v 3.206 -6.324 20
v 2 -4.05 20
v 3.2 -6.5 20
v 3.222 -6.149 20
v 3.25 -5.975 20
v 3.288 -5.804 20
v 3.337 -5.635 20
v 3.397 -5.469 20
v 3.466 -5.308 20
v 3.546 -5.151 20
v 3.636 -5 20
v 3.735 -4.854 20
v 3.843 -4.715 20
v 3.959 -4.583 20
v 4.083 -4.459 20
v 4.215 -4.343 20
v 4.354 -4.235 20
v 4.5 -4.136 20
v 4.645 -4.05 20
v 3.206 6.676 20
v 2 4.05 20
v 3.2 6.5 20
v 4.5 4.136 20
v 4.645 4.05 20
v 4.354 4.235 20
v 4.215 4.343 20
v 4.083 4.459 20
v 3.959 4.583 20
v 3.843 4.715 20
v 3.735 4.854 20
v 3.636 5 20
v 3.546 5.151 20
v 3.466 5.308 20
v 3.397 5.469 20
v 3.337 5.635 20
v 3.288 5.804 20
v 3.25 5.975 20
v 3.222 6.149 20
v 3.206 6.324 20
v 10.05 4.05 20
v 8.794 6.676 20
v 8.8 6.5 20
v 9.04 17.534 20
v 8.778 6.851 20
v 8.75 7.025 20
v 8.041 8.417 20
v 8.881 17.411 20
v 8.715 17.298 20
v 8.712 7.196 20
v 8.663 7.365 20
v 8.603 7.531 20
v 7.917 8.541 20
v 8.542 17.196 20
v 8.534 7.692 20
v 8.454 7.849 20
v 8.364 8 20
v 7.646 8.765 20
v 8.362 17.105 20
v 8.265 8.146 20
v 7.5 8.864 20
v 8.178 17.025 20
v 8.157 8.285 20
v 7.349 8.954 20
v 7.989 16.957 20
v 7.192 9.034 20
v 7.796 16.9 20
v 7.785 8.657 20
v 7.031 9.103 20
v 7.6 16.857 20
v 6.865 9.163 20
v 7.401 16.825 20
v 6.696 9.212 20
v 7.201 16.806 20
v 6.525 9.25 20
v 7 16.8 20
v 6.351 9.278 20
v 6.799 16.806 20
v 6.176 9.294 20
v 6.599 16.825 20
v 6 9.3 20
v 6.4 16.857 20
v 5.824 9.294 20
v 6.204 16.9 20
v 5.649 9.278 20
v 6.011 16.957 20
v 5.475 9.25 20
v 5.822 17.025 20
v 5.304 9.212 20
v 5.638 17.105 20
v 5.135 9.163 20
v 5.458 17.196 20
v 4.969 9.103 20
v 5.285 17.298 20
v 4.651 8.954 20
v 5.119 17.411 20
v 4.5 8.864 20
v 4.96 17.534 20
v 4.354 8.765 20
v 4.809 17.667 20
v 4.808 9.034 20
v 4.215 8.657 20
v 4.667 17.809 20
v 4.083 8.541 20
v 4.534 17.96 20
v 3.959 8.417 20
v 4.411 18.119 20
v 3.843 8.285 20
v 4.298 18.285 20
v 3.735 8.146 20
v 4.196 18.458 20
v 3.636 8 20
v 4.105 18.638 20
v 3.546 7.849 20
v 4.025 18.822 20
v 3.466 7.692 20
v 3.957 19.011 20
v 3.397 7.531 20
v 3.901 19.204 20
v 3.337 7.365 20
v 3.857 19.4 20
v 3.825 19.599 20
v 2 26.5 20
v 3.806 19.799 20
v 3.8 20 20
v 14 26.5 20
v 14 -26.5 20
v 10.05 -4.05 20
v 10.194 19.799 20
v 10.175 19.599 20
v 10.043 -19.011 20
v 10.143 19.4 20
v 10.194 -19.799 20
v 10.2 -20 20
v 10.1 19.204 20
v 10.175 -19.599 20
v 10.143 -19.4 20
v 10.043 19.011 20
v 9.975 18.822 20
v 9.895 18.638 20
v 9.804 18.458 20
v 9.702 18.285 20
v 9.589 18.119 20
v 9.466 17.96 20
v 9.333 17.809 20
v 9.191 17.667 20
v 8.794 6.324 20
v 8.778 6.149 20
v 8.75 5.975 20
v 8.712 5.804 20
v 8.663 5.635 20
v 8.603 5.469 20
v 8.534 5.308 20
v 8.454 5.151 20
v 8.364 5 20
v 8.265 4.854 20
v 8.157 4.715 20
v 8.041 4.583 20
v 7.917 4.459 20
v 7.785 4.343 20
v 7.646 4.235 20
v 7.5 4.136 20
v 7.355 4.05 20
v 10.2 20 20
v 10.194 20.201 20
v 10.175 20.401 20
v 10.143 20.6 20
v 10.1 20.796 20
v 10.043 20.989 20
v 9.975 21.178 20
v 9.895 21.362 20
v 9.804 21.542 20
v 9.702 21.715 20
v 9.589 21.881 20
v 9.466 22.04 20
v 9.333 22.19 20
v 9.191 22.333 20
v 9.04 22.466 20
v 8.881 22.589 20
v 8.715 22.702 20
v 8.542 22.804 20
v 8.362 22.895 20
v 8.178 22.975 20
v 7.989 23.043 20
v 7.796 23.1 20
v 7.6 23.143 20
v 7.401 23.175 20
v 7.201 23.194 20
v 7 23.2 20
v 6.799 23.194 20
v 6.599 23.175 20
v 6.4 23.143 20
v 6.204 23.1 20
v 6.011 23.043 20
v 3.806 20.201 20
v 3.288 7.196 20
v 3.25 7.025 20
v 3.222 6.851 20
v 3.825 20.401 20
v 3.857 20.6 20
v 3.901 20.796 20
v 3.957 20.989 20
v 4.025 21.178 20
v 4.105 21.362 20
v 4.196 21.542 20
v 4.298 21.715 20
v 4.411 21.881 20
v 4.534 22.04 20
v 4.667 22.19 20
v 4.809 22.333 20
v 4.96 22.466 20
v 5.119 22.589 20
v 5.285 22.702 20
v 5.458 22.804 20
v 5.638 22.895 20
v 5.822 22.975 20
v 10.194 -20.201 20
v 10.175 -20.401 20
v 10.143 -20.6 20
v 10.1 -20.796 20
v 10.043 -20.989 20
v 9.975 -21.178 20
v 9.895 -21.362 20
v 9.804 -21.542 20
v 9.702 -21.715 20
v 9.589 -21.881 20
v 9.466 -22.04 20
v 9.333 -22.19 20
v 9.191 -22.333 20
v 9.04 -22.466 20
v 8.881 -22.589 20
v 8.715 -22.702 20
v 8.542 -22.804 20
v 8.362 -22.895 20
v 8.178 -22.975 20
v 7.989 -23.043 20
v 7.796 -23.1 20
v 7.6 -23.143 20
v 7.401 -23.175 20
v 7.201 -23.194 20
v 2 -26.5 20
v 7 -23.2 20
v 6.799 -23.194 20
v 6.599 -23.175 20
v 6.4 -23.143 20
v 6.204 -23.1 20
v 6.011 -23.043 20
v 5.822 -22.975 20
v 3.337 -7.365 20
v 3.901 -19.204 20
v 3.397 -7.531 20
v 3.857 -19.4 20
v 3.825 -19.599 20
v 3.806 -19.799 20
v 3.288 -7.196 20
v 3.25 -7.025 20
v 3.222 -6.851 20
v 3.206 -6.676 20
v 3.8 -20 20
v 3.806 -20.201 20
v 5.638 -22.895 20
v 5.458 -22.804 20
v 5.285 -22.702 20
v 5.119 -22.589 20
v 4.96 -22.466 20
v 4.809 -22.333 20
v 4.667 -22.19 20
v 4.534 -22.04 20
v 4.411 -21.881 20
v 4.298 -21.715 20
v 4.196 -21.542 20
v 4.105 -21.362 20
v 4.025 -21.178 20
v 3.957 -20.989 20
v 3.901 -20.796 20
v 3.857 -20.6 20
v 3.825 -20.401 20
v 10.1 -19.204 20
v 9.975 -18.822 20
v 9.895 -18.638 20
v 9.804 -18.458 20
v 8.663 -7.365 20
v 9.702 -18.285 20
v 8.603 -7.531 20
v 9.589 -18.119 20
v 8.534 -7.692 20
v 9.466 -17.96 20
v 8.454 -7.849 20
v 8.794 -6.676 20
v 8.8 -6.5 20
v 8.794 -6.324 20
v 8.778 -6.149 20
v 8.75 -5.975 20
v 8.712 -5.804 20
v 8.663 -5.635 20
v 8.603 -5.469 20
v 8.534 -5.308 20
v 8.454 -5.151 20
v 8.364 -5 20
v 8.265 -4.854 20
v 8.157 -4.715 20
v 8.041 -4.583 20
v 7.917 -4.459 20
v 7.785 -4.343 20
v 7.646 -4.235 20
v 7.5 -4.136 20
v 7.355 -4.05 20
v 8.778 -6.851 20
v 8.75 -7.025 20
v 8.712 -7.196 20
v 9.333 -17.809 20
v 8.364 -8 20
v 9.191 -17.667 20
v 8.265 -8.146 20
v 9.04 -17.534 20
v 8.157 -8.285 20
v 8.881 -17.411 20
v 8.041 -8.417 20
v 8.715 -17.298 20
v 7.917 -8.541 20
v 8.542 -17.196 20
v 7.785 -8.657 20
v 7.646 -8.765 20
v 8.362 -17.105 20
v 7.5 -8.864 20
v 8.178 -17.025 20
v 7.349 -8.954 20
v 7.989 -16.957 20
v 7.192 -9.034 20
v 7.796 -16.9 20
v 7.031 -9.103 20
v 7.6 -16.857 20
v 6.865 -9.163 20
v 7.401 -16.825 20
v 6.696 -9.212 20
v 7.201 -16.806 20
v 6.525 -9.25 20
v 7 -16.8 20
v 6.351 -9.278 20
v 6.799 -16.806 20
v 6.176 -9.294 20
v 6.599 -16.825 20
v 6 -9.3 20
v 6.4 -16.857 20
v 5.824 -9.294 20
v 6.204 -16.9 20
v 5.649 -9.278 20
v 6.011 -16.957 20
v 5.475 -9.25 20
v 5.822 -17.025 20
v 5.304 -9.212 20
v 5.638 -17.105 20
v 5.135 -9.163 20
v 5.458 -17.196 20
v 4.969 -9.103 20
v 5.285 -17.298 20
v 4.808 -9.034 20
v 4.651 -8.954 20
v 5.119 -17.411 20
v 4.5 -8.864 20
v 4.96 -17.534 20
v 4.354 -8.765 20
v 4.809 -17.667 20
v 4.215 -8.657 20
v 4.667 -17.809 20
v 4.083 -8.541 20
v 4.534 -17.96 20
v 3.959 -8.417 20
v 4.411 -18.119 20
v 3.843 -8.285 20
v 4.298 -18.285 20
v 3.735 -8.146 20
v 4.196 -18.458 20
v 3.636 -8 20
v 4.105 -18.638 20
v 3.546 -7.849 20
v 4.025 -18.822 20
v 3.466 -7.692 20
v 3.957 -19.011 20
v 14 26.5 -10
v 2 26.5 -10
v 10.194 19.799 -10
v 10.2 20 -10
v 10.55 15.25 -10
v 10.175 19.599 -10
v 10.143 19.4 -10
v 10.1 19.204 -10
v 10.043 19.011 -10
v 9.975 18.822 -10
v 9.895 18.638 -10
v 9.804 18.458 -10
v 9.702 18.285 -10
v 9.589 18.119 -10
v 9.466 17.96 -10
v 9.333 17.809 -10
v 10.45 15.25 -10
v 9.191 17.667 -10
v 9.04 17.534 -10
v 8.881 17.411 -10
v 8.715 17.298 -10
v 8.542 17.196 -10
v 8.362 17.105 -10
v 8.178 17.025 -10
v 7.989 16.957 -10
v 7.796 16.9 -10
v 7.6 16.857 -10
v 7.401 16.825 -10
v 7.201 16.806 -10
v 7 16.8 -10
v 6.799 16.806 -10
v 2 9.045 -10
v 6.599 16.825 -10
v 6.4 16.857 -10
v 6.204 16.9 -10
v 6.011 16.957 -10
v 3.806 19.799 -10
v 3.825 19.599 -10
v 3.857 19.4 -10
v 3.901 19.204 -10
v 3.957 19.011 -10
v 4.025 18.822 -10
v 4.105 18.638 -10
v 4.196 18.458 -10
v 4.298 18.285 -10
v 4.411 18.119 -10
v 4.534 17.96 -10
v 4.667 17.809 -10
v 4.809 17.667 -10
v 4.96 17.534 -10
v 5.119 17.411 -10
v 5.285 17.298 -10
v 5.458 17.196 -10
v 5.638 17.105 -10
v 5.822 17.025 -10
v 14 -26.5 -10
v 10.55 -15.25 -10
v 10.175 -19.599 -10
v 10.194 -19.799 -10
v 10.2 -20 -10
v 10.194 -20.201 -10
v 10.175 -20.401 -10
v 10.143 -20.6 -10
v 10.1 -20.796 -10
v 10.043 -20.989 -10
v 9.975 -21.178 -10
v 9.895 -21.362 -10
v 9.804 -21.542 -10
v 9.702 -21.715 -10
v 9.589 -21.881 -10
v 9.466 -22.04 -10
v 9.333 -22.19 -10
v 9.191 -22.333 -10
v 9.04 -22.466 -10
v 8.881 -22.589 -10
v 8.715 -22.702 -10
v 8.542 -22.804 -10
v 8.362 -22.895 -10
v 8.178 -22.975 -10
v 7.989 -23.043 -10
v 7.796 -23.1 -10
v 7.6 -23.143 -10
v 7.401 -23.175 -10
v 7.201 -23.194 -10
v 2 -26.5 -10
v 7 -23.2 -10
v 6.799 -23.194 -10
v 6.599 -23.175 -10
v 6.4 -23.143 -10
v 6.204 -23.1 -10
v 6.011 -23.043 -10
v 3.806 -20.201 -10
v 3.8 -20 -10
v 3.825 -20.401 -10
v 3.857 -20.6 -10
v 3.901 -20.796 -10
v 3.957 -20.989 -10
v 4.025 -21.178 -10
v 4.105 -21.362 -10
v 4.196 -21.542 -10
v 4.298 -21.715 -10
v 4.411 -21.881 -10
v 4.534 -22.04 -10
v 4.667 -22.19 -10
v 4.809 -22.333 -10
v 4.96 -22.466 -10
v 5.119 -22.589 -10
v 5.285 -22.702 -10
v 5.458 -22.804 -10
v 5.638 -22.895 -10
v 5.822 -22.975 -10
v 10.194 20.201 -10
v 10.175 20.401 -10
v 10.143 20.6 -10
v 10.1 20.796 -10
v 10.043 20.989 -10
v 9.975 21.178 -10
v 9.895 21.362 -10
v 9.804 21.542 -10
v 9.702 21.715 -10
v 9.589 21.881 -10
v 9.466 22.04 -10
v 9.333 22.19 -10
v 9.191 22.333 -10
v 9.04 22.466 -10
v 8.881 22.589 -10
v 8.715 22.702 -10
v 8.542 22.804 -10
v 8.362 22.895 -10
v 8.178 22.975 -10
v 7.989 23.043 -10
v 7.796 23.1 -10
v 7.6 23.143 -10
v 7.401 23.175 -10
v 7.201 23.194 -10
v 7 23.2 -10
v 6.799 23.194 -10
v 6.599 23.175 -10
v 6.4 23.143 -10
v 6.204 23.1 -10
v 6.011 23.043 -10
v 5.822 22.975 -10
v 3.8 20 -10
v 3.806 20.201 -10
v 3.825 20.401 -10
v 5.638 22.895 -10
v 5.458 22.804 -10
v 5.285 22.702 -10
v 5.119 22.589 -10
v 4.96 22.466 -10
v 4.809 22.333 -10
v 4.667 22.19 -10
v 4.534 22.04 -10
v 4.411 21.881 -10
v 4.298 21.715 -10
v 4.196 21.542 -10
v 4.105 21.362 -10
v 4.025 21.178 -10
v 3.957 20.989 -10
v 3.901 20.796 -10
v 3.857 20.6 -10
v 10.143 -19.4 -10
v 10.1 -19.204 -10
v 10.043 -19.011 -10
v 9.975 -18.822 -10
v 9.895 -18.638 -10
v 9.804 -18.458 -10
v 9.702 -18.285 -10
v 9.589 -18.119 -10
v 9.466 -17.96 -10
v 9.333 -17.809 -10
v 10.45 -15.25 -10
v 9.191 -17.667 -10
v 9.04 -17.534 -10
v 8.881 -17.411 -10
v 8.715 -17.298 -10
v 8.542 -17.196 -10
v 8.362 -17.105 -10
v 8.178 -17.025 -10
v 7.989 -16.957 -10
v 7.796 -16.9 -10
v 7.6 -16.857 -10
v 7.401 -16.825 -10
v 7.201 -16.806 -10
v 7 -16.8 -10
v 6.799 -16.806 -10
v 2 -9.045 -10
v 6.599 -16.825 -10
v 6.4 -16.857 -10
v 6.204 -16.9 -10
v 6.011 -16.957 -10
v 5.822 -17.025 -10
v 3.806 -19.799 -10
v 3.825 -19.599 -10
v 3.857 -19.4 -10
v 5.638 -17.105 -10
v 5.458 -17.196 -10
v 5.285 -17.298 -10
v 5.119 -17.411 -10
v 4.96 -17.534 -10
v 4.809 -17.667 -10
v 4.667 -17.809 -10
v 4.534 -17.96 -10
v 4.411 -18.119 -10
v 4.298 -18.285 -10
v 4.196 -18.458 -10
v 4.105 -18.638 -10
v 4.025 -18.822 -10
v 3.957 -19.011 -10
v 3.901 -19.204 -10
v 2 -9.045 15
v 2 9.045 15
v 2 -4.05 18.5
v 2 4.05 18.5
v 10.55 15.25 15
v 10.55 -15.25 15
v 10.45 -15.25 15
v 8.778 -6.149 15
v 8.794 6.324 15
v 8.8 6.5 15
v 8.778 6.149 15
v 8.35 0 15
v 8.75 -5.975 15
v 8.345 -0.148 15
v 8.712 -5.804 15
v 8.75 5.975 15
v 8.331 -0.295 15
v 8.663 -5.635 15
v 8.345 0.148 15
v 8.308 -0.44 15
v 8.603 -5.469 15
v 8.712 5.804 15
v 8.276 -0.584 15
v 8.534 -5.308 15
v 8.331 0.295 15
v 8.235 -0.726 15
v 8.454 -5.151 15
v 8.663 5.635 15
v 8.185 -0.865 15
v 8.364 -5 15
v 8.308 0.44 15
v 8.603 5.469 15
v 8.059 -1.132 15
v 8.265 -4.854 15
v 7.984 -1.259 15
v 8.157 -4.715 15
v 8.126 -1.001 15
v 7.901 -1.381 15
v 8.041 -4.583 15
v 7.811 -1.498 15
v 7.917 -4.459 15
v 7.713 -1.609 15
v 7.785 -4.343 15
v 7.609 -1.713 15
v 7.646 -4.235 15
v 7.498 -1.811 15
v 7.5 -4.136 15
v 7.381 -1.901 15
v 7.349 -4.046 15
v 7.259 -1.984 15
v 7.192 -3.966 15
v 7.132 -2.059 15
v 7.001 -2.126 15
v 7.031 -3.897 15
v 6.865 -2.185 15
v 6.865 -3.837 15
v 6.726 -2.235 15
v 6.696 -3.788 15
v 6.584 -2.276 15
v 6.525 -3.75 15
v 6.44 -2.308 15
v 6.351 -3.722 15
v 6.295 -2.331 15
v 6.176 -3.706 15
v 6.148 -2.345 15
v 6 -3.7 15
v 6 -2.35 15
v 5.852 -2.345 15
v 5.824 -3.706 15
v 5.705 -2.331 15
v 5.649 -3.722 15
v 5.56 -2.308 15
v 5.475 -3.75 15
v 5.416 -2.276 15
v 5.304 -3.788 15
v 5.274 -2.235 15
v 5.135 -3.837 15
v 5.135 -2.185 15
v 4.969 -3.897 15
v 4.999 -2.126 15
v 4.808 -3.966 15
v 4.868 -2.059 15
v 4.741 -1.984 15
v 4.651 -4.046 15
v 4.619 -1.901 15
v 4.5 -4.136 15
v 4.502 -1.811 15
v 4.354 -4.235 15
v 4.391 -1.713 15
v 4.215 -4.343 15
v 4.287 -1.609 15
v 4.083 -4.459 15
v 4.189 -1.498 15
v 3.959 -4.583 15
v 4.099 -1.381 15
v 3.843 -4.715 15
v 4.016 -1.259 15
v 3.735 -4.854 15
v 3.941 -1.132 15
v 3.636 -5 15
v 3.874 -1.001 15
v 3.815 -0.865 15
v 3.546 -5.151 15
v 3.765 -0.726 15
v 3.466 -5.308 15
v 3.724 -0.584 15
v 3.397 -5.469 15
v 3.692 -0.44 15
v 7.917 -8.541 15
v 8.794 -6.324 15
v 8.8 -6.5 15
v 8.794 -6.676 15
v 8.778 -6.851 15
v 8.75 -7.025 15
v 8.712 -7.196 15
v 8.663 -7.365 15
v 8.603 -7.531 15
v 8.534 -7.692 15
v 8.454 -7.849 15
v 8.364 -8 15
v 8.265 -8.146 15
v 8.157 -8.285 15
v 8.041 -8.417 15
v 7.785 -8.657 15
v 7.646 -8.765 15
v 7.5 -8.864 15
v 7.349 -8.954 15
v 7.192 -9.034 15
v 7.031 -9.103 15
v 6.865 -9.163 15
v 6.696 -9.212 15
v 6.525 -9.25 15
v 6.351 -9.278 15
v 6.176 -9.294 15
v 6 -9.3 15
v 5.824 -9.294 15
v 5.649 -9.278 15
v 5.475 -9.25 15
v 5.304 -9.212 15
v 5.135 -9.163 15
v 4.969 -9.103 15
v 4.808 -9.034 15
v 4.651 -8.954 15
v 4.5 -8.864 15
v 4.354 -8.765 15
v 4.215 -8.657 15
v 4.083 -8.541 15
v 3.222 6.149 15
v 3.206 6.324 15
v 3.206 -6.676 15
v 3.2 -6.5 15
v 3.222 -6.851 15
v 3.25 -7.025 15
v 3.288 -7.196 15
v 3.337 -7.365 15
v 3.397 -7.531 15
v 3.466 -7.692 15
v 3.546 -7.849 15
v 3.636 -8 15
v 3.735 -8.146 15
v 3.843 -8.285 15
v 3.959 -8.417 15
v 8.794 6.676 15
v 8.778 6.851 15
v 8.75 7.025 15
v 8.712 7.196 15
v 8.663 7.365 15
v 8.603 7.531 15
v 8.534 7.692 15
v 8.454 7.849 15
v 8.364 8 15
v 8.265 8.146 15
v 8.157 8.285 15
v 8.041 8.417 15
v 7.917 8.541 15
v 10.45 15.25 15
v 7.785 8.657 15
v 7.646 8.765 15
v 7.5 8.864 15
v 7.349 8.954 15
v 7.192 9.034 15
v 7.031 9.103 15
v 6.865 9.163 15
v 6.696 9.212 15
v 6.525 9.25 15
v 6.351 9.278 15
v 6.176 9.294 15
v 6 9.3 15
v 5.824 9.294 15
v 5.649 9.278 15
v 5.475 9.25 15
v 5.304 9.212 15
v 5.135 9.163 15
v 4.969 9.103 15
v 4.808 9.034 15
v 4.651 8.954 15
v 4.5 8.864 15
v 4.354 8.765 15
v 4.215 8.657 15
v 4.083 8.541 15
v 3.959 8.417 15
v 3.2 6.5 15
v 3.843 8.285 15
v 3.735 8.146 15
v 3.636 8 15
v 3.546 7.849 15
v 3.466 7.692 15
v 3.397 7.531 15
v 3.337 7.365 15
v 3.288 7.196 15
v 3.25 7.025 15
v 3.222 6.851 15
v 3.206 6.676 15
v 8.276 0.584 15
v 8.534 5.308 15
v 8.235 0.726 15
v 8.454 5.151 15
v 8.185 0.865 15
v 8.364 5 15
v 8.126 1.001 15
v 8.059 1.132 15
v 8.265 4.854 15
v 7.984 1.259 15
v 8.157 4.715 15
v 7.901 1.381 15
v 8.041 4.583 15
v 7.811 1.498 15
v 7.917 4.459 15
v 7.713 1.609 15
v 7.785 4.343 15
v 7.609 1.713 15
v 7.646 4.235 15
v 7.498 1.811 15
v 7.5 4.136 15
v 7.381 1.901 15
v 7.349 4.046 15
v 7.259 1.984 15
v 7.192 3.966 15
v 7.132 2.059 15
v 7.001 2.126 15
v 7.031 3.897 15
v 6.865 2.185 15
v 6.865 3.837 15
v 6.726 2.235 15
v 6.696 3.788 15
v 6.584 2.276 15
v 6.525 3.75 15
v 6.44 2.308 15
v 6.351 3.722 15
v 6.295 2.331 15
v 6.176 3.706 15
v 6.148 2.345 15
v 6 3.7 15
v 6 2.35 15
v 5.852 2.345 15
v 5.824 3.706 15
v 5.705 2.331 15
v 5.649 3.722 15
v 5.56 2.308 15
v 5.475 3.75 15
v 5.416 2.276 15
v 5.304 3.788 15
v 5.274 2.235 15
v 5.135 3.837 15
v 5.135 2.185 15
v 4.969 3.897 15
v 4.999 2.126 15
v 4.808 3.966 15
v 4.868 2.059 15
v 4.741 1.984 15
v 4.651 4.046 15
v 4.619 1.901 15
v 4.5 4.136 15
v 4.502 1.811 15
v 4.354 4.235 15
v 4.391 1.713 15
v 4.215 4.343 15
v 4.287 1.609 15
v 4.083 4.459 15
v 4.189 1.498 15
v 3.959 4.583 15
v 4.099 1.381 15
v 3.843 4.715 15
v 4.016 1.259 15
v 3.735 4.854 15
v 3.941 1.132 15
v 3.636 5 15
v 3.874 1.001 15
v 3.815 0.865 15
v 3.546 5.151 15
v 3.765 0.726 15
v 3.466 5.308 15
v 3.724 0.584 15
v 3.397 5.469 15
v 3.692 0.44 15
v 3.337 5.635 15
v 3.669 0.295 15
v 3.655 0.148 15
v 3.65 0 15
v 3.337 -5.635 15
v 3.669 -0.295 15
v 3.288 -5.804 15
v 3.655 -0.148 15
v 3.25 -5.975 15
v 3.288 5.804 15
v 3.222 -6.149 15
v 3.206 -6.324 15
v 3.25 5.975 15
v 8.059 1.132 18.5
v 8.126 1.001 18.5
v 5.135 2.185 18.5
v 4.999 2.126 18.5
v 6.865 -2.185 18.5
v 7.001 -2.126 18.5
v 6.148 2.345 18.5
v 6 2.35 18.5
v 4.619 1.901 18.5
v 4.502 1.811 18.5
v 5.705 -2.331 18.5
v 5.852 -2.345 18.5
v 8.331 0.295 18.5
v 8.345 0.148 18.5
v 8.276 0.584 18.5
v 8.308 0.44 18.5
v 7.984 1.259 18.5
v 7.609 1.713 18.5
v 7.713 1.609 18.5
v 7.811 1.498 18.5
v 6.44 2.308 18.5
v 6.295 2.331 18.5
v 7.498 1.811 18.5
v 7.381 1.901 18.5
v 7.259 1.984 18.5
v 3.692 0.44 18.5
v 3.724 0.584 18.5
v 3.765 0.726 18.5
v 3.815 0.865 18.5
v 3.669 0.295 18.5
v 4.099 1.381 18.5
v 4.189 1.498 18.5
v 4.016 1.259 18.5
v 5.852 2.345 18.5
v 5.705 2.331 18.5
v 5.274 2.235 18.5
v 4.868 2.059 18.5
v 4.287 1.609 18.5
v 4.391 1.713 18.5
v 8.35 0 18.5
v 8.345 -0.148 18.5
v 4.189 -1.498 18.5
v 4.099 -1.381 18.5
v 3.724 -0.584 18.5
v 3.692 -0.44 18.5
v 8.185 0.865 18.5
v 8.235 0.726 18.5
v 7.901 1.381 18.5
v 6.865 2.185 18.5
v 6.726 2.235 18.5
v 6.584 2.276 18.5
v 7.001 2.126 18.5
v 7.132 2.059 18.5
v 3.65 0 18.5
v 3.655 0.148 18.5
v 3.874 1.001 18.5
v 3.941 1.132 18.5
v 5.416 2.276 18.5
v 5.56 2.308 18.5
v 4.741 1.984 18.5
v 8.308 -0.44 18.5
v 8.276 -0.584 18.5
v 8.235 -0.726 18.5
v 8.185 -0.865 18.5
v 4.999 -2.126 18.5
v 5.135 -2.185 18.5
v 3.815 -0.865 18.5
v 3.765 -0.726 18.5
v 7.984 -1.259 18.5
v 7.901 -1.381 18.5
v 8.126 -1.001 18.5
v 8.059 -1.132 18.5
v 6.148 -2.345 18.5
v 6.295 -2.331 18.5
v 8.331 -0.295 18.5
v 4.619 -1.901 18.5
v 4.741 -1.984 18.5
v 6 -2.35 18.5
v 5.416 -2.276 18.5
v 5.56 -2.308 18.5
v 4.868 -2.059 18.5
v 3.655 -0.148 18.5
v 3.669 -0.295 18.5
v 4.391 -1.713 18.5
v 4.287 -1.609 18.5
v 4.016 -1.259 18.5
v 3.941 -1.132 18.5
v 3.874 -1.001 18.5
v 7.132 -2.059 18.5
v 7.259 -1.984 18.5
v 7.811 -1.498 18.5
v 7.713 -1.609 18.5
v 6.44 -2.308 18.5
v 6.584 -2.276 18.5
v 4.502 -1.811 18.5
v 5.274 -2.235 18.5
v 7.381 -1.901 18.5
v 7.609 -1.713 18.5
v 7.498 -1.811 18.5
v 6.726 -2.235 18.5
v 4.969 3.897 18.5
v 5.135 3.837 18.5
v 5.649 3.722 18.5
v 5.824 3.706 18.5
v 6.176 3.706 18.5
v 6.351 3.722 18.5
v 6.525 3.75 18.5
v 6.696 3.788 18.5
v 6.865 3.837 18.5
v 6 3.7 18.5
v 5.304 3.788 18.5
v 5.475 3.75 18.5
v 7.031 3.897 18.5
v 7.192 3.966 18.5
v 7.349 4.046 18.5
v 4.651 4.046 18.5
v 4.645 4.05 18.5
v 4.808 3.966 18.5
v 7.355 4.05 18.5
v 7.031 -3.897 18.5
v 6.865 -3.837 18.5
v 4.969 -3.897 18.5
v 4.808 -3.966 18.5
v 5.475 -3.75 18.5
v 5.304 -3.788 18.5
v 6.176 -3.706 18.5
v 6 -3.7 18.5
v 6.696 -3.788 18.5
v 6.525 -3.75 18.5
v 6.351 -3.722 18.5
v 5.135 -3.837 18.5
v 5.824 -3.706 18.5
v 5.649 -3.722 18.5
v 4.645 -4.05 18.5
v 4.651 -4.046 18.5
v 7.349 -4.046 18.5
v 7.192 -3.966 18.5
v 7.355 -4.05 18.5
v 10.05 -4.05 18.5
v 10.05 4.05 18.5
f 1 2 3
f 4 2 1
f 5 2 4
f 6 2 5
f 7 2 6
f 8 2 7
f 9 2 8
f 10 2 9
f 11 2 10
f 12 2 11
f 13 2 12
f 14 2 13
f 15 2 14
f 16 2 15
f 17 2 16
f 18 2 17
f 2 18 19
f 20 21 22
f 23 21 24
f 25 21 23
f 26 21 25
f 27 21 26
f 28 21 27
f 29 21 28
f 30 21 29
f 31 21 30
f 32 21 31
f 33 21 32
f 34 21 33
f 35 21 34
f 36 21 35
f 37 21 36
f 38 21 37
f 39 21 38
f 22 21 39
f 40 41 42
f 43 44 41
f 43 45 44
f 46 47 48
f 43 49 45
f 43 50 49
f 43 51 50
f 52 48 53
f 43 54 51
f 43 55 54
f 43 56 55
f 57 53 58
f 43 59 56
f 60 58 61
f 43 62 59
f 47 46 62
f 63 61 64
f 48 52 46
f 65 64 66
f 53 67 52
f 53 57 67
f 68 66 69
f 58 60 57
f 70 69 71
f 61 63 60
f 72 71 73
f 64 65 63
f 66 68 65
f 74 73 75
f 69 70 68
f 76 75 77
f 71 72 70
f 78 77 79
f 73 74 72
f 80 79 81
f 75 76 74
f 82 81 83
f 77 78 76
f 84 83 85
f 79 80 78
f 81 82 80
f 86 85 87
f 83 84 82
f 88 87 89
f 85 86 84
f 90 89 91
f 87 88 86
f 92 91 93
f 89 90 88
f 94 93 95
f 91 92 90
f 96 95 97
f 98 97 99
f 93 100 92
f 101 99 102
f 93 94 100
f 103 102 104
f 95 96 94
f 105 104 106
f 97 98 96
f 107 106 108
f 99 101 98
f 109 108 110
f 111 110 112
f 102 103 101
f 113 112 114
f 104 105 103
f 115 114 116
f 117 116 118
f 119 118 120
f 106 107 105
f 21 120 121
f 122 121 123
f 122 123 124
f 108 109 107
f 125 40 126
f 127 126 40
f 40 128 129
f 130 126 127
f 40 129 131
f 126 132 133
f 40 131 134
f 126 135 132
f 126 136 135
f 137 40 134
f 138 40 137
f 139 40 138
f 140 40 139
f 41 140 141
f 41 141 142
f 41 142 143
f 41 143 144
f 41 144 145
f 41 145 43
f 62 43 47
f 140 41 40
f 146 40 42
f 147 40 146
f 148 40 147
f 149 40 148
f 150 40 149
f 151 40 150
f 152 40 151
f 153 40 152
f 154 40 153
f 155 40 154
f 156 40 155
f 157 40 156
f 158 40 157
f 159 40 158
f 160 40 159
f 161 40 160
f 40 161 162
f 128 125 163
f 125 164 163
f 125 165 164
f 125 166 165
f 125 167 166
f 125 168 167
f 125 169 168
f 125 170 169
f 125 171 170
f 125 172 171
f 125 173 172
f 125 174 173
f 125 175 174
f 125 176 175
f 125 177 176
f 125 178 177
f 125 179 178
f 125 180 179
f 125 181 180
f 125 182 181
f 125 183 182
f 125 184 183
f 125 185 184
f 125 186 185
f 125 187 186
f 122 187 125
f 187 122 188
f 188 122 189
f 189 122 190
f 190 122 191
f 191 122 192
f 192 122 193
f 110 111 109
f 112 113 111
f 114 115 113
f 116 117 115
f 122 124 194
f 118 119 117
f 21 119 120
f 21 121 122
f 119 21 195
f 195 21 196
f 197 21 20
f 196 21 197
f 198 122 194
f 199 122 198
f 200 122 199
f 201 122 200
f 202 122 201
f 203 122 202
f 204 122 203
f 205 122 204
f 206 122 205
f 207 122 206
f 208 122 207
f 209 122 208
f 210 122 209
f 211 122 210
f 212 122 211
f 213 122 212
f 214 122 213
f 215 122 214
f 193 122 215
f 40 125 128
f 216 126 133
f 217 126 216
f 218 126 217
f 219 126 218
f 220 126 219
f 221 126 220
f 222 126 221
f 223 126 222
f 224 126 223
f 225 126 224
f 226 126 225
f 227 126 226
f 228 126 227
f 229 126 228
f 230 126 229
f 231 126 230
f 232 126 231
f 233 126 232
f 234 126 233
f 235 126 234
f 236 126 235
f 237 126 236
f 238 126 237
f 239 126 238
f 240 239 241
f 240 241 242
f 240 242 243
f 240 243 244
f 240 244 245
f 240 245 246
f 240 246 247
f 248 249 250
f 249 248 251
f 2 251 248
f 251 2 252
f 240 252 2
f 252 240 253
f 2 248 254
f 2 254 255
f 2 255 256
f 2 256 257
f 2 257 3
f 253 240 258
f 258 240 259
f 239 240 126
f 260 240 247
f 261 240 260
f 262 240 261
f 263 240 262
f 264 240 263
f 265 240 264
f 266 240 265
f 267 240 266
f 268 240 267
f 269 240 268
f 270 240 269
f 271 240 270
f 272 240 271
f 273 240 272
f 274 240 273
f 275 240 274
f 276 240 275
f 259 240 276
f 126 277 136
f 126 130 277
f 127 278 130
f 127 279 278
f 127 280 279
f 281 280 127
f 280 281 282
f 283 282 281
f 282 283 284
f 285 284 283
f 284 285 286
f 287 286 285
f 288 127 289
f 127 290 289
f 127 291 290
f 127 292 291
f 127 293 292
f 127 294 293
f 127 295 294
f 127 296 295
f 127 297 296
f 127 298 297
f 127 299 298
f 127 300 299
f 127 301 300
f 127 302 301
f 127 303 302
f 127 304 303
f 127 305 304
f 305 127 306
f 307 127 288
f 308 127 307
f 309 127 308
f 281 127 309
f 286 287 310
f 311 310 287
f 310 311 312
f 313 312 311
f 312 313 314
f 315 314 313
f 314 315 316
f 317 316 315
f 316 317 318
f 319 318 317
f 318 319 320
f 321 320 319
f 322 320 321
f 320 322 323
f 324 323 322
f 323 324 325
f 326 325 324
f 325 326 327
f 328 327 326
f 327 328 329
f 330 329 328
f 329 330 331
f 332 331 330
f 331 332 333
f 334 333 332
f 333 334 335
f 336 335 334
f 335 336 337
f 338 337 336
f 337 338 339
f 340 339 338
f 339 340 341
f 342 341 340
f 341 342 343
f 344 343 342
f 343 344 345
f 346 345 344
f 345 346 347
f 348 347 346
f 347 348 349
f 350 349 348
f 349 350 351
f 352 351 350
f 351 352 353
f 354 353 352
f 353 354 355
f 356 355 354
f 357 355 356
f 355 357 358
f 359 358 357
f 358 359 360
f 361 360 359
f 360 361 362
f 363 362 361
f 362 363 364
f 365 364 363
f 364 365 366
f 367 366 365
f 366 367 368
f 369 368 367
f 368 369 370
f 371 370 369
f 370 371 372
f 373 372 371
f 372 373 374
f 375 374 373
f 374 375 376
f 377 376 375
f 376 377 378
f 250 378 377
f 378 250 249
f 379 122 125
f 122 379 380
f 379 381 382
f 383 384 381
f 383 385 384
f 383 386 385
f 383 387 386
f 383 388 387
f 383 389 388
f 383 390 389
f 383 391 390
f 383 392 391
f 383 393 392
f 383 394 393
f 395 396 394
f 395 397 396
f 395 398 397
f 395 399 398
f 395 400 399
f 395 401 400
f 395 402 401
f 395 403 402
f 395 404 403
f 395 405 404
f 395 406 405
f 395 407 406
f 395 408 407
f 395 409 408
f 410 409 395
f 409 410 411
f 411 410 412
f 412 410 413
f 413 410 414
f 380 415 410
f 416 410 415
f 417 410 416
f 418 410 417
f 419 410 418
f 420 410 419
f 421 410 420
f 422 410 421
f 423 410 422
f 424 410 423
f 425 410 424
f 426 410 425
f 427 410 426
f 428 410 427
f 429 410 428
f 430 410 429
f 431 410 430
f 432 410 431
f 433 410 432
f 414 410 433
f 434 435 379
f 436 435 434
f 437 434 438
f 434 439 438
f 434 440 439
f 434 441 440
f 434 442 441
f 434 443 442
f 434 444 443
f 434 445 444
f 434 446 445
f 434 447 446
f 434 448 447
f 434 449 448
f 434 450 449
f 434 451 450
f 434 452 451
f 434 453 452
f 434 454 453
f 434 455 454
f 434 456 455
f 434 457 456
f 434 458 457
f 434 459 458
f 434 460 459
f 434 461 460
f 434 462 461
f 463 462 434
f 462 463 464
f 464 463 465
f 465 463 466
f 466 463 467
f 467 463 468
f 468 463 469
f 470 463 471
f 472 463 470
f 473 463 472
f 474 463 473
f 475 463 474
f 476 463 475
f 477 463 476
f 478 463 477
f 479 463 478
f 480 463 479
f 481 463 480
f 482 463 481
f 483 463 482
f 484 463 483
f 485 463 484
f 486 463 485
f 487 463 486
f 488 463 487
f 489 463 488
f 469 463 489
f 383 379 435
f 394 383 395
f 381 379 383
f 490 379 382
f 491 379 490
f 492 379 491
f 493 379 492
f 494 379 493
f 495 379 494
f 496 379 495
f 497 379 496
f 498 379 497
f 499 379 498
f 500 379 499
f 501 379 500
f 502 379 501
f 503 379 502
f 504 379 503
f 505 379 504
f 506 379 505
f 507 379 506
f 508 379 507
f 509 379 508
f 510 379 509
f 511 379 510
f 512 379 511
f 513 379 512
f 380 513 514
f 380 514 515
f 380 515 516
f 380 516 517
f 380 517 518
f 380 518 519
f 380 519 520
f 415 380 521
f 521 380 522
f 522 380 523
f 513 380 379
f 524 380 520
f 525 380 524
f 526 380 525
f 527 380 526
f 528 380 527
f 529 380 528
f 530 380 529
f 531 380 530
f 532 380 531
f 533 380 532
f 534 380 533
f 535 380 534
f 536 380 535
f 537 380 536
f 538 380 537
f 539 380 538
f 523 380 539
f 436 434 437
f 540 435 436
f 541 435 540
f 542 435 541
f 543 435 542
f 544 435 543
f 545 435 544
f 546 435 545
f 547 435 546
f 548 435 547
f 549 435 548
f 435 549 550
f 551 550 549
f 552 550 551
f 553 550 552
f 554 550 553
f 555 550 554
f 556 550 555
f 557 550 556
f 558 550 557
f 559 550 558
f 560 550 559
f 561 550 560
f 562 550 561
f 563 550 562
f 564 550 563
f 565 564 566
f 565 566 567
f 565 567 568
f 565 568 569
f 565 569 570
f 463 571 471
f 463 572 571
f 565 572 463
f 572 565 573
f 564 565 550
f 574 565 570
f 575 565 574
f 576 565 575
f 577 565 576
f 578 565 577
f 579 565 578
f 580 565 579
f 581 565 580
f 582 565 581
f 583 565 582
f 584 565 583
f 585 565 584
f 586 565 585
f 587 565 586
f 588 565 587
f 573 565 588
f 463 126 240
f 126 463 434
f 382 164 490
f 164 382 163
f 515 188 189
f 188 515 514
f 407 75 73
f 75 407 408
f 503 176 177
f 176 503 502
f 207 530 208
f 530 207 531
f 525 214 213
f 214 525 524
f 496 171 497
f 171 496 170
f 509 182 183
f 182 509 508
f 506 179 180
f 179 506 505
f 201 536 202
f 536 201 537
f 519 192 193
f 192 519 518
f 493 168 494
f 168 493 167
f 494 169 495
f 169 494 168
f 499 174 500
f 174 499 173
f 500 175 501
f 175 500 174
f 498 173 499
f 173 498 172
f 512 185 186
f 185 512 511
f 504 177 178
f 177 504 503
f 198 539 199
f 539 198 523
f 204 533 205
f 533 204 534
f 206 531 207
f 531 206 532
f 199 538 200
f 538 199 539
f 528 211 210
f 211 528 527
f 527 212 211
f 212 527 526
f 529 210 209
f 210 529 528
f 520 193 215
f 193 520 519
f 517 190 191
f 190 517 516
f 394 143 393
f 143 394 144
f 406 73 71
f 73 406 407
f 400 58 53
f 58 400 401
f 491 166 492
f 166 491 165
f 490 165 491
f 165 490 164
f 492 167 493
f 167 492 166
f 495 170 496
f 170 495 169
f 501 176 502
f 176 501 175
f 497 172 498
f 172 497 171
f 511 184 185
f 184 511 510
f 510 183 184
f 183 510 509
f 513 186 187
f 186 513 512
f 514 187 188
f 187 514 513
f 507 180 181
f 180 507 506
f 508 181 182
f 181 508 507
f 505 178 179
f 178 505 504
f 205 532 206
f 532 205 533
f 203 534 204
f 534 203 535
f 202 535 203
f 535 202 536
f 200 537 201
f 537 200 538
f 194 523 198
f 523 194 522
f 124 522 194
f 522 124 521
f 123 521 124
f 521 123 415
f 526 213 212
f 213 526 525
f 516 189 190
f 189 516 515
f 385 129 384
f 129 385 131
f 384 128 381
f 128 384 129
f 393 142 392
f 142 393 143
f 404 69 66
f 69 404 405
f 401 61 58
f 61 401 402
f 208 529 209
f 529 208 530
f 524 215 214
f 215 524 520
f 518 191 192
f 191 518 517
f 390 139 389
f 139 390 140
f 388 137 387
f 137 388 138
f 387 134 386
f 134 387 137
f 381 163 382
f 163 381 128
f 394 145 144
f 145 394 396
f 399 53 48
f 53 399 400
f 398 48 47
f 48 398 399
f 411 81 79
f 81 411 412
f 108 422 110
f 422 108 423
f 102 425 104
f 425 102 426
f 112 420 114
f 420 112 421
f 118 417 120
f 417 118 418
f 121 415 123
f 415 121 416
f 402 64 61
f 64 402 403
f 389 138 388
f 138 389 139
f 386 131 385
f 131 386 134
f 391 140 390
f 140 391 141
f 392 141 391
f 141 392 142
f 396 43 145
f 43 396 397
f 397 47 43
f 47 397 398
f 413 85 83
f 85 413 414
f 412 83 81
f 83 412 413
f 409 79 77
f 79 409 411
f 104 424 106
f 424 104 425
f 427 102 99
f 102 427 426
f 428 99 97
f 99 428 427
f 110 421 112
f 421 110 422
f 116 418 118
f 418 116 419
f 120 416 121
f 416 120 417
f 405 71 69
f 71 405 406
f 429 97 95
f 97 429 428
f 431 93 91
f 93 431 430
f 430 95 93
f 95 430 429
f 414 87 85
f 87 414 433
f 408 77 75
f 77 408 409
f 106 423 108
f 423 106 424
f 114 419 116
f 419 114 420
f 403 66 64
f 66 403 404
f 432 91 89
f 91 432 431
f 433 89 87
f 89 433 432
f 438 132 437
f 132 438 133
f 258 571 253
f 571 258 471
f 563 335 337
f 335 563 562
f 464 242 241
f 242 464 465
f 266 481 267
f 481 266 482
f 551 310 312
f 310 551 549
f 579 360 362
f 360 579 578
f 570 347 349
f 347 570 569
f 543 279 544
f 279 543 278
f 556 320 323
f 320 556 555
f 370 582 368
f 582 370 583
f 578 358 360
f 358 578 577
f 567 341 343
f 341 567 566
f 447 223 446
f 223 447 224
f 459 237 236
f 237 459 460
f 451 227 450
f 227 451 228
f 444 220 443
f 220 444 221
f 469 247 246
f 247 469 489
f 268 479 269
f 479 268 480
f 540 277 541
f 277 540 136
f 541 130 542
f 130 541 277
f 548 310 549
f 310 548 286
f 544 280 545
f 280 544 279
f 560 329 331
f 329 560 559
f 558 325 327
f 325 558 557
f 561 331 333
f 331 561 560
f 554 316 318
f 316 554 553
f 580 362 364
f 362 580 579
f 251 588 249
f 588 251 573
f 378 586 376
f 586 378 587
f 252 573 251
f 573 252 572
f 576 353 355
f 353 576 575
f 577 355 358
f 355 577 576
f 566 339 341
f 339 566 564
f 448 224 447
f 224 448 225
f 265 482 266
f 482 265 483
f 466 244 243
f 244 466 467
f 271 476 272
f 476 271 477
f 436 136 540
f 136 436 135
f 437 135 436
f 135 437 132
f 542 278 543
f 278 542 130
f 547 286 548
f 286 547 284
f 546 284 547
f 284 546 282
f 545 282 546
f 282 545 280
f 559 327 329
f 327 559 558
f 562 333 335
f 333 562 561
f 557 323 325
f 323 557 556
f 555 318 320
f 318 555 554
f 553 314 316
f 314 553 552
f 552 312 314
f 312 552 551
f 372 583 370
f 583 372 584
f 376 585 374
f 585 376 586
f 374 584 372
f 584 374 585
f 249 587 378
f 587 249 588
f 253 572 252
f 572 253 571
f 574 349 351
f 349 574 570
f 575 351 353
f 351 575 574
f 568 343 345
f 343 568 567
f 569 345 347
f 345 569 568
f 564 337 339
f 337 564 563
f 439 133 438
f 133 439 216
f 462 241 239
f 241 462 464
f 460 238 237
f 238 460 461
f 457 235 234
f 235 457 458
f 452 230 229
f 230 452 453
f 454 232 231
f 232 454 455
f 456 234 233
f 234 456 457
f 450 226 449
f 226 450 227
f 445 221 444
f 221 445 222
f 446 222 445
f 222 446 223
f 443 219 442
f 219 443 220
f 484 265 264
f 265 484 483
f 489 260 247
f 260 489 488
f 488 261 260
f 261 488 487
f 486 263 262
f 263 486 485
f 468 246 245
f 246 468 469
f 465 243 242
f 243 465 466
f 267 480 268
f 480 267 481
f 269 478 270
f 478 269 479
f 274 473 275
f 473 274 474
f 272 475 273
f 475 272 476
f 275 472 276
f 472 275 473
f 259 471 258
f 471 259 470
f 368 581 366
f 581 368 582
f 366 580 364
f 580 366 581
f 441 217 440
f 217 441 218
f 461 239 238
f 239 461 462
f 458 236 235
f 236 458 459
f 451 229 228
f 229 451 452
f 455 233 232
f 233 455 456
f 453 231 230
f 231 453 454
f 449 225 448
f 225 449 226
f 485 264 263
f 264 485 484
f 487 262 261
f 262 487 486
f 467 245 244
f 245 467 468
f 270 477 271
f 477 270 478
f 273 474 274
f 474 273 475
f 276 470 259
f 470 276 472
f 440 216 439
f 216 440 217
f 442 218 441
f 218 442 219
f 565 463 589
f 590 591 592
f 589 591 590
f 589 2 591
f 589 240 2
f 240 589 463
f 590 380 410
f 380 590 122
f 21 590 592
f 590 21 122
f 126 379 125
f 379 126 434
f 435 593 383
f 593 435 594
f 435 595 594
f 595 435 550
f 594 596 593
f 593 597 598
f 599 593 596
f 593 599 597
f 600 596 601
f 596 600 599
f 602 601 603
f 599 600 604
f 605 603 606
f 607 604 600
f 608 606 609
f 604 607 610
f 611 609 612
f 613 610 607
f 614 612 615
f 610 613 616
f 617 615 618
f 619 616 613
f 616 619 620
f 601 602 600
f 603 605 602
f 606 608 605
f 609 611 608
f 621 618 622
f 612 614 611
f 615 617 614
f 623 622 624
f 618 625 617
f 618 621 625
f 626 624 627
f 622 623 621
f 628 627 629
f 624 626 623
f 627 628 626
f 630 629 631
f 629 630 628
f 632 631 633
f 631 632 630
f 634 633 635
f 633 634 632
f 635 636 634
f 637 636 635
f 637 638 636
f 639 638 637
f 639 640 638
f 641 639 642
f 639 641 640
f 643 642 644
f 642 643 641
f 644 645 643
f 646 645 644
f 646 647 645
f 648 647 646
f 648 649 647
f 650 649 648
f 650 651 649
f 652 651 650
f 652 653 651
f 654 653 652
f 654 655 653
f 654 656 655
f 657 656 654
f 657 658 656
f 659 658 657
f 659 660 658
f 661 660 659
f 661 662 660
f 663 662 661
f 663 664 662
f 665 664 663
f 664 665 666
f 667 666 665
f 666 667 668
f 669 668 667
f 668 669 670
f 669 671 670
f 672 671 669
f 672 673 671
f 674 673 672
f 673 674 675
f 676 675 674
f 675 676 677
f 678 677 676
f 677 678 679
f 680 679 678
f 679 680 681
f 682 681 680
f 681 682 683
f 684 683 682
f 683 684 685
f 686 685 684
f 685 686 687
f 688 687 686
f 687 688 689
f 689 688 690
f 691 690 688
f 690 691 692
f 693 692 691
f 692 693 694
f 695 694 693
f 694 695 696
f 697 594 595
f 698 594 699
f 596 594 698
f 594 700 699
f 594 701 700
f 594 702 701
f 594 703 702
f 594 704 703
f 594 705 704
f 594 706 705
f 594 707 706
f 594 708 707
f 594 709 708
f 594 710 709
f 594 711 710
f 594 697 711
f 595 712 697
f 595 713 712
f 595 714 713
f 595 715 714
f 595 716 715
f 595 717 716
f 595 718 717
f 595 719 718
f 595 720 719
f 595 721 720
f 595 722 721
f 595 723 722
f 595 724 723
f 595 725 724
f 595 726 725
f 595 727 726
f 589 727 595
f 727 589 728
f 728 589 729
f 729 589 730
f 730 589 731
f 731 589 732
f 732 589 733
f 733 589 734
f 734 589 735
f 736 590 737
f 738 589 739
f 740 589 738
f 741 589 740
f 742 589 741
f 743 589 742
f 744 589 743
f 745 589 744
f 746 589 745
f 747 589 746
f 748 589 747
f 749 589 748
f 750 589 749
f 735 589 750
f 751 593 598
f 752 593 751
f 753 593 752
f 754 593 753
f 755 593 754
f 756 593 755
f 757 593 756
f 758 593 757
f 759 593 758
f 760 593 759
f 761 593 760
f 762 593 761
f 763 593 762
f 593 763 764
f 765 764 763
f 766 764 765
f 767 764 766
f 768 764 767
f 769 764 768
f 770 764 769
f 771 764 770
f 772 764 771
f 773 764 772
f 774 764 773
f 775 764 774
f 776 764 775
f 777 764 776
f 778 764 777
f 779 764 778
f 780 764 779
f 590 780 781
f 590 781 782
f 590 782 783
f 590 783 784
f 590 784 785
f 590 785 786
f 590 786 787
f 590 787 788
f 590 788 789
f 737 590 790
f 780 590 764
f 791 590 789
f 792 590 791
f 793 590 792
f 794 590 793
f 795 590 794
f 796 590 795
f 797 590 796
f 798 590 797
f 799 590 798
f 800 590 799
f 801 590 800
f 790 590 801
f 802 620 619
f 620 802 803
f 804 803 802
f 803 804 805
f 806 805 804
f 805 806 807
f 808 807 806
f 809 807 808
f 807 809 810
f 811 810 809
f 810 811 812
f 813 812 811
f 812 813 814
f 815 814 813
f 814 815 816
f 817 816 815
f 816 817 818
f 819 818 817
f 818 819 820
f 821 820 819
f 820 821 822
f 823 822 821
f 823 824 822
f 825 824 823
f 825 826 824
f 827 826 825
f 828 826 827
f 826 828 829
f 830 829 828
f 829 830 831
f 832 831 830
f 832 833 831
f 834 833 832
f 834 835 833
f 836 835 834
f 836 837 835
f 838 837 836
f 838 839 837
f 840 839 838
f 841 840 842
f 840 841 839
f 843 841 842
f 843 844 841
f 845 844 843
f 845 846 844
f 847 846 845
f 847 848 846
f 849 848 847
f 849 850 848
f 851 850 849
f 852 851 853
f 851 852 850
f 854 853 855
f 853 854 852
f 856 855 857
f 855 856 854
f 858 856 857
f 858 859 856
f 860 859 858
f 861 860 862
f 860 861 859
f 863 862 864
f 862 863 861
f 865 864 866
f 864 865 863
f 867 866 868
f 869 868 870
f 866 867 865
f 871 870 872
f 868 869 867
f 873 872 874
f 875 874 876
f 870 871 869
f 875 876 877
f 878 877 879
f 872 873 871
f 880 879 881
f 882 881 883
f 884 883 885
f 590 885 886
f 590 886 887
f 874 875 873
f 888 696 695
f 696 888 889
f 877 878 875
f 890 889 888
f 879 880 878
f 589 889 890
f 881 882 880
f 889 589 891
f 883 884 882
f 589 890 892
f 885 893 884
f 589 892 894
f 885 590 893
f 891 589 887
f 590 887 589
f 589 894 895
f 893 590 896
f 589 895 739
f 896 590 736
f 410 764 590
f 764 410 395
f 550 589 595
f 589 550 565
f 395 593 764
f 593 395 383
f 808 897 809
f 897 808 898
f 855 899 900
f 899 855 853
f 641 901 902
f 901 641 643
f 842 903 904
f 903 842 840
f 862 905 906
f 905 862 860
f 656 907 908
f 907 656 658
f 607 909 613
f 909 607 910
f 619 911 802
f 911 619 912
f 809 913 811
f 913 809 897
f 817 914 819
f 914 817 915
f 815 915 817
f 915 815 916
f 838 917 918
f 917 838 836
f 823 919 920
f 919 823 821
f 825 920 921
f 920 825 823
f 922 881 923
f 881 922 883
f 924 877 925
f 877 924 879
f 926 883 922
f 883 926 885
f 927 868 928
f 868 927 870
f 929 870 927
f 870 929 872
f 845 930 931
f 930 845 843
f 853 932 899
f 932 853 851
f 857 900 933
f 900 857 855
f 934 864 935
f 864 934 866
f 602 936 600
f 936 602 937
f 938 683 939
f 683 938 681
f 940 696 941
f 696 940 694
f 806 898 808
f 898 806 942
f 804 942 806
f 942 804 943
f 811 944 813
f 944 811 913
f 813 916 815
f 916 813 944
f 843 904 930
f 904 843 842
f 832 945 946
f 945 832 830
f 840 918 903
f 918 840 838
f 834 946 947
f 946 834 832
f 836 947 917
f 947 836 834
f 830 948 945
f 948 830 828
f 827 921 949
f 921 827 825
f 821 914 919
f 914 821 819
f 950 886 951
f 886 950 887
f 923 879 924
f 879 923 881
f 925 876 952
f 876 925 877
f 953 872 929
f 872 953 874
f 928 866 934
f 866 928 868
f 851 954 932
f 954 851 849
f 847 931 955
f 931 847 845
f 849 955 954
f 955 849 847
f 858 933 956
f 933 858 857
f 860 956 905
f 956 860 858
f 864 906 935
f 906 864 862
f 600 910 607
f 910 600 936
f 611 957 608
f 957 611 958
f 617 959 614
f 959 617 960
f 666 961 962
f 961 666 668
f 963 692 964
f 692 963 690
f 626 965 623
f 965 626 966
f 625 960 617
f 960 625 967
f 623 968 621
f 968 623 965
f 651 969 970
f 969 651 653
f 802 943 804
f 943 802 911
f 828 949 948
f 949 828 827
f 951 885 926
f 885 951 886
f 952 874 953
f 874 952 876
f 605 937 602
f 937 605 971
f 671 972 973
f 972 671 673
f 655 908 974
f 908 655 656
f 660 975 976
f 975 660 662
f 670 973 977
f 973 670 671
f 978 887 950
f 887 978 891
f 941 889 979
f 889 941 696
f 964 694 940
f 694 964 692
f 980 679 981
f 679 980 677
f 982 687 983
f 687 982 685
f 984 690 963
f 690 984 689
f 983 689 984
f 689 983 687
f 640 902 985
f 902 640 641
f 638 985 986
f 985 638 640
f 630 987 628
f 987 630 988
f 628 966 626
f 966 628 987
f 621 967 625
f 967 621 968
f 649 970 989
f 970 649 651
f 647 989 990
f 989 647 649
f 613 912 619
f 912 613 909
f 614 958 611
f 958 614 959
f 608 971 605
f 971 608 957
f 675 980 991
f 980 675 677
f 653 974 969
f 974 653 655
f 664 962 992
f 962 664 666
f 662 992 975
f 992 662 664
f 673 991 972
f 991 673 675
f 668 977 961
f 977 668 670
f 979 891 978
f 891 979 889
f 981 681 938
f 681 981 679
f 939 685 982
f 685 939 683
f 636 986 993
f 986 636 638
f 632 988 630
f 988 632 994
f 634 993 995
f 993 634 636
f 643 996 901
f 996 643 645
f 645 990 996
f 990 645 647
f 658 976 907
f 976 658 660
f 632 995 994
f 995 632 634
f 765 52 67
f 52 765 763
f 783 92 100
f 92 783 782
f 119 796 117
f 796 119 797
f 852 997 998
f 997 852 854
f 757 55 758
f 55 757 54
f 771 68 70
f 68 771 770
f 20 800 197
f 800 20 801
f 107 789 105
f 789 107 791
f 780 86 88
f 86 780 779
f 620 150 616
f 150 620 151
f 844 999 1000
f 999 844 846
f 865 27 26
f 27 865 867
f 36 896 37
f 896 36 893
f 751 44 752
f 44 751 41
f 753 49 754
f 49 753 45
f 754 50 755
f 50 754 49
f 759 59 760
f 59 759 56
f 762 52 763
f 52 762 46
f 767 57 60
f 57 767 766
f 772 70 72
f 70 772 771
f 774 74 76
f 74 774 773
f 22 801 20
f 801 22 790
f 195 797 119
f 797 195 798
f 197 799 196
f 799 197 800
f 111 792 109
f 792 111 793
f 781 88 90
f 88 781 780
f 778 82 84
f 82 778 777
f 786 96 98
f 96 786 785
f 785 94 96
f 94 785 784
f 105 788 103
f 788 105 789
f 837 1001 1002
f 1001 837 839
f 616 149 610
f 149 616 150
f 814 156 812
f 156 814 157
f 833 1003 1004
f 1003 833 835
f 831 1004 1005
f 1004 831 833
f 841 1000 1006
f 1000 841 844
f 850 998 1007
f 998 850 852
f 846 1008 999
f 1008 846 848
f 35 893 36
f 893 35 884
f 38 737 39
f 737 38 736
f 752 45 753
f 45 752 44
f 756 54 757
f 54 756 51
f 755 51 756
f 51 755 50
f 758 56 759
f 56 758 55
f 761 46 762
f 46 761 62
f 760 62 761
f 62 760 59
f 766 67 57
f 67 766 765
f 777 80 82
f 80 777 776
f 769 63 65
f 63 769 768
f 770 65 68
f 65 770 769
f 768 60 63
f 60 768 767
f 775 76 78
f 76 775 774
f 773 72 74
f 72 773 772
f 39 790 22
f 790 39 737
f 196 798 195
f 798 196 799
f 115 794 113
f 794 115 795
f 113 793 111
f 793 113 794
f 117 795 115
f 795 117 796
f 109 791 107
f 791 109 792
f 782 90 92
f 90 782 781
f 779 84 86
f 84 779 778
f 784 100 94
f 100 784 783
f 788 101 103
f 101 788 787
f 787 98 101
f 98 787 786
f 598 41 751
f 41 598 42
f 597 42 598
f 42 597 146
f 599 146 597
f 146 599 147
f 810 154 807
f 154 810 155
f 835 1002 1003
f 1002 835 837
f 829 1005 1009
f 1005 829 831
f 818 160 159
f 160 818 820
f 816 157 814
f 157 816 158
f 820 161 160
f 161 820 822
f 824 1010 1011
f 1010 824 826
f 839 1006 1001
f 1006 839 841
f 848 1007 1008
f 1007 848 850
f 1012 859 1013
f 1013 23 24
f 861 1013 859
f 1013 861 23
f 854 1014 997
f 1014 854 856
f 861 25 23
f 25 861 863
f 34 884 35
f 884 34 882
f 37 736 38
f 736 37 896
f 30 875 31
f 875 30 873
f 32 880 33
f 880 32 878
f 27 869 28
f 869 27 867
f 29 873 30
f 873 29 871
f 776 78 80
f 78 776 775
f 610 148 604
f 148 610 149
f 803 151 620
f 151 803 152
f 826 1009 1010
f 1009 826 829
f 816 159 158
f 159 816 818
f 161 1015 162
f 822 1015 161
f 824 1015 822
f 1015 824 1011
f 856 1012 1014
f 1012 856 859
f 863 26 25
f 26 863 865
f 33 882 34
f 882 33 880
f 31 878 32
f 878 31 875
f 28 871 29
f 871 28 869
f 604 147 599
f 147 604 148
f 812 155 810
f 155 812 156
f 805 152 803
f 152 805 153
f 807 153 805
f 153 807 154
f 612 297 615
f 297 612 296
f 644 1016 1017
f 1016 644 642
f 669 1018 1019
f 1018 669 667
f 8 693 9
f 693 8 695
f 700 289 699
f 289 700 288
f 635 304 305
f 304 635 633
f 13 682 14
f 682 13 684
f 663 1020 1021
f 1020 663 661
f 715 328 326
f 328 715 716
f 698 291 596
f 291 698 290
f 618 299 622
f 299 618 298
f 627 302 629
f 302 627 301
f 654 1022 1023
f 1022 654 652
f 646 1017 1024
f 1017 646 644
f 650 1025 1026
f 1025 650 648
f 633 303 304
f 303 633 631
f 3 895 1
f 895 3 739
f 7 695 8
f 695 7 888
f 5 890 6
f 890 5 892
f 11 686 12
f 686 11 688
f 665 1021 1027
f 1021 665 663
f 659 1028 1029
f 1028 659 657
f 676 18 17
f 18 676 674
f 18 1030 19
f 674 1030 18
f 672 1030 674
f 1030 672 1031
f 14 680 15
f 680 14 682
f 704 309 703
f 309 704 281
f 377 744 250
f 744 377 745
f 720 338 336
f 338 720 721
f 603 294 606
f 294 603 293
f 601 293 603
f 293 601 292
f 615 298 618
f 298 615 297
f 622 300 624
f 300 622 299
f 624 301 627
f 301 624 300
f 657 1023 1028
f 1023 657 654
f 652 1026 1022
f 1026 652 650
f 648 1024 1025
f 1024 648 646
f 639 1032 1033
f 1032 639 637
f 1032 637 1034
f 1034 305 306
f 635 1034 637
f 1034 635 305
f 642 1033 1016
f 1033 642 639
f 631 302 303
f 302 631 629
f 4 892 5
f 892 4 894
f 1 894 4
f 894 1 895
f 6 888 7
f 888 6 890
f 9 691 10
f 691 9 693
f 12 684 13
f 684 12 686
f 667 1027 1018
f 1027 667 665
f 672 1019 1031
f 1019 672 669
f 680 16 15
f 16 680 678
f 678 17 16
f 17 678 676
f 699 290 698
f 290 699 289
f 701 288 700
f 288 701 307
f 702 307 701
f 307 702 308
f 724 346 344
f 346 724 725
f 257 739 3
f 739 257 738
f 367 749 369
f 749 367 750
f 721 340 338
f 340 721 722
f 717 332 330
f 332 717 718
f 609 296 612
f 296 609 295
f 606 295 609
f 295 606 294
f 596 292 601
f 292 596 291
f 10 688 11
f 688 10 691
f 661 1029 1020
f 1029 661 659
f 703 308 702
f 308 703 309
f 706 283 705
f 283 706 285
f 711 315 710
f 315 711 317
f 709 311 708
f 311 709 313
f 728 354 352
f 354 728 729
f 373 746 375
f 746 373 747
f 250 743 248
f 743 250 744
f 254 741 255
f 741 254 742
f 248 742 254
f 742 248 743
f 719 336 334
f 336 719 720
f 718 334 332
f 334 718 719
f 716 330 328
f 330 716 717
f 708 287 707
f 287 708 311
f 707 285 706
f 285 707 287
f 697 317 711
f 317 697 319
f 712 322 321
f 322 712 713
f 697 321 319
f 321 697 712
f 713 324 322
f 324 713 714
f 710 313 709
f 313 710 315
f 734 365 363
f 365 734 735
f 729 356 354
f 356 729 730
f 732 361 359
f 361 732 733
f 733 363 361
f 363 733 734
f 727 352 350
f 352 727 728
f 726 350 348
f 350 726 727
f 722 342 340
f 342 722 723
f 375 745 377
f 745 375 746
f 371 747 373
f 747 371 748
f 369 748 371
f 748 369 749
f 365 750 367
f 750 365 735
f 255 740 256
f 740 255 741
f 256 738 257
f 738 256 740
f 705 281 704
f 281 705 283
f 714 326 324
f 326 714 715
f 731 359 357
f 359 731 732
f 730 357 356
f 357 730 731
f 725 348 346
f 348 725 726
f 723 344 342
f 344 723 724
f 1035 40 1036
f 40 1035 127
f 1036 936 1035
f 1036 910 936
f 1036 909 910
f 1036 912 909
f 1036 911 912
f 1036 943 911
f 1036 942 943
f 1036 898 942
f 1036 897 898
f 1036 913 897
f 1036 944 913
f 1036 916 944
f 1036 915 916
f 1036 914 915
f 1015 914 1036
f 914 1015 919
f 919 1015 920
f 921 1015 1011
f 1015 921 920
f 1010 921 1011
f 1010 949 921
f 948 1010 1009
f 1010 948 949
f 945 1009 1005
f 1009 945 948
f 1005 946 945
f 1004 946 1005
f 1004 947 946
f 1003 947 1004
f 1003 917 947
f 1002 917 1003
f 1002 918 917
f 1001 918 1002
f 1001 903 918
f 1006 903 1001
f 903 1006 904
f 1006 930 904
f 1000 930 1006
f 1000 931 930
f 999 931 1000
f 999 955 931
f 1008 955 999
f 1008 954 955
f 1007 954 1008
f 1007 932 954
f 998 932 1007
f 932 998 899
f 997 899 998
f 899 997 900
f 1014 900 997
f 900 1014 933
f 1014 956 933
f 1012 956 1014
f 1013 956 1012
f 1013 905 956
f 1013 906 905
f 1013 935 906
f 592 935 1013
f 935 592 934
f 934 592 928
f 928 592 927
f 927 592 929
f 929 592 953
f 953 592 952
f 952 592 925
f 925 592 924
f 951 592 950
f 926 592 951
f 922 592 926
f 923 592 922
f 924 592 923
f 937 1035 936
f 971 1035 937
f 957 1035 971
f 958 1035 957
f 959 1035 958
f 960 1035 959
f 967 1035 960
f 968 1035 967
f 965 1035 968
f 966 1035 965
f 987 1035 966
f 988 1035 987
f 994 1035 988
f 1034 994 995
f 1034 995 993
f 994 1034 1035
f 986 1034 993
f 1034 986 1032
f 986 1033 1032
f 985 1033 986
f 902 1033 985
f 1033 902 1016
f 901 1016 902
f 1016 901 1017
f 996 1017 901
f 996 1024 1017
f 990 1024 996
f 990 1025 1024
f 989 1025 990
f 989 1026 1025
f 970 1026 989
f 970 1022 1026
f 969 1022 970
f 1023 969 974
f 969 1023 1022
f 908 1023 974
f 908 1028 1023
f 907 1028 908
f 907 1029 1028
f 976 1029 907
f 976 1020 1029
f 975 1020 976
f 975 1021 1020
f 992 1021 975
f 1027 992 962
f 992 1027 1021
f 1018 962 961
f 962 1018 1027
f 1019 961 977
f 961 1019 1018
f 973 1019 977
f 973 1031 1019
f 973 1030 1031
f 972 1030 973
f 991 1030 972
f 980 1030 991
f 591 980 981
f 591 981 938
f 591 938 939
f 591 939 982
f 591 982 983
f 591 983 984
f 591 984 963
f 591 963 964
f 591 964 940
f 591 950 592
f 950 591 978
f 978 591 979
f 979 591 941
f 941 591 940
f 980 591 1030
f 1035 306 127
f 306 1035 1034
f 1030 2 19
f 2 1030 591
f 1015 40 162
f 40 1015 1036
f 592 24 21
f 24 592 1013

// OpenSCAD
/*

Part of the translation stage for the Raspberry Pi camera, together with camera_mount.scad

Design by Tomas Aidukas, modified by Victor Lovic

*/

// angle is tan(delta_h/slider_hole_w_h)

//I have changed these values to give a bigger margin
slider_hole_w_h = 30.4; 
slider_x_shift_h = 10.5;
slider_z_shift_h = -10;
delta_h = -20.7;
$fn = 100;
height = 30;

// Main Block with mount holes
difference(){
    
    translate([0,0,5]){
        cube([40.6,53,height],center=true);   
    }
    
    translate([7,20,0]){
        //Hole diameter for the mount is 6.4mm, 30mm apart
        cylinder(r=3.2,h=200,center=true);
    }
    
    translate([7,-20,0]){
        //Hole diameter for the mount is 6.4mm, 30mm apart
        cylinder(r=3.2,h=200,center=true);
    }
    
    // Large block chop
    translate([-18,0,-10]){
        cube([40,70,80], center=true);
    }
    
    //second chop
    translate([34,0,-10]) cube([40,70,80],center=true);

// Slider Hole
hull(){
    translate([slider_x_shift_h,slider_hole_w_h/2,slider_z_shift_h]){
        cube([0.1,0.1,50], center=true);
    }
    
    translate([slider_x_shift_h,-slider_hole_w_h/2,slider_z_shift_h]){
        cube([0.1,0.1,50], center=true);
    }
    
    translate([slider_x_shift_h+delta_h,0,slider_z_shift_h]){
        cube([0.1,0.1,50], center=true);
    }
}// Slider hole ENDS

/*
    // Stabilizer
    #translate([5,16.5,-10]){
        cube([10,1,50],center=true);
    }
    #translate([5,13,14.5]){
        cube([10,8,1],center=true);
    }// stabilizer END
*/
    
    //Bushing
    translate([6,0,14.5]){
        cylinder(d=4.7,h=200,center=true);}
    //Bushing END
    
    // Spring Holes
    translate([6,6.5,14.5]){
        cylinder(d=5.6,h=200,center=true);}
    translate([6,-6.5,14.5]){
        cylinder(d=5.6,h=200,center=true);}// Spring Holes END
        
    //Grove for spring holder
    translate([6,0,19.5]){
        //cube([2.5,30,2],center=true);  
        cube([8.1,8.1,2], center=true);
    }
}

/*
// Spring holder
    translate([5.5,3,+height/2+3]){
        cube([1,7,2]);}
        
    translate([5.5,-10,+height/2+3]){
        cube([1,7,2]);}// Spring holder END
*/
